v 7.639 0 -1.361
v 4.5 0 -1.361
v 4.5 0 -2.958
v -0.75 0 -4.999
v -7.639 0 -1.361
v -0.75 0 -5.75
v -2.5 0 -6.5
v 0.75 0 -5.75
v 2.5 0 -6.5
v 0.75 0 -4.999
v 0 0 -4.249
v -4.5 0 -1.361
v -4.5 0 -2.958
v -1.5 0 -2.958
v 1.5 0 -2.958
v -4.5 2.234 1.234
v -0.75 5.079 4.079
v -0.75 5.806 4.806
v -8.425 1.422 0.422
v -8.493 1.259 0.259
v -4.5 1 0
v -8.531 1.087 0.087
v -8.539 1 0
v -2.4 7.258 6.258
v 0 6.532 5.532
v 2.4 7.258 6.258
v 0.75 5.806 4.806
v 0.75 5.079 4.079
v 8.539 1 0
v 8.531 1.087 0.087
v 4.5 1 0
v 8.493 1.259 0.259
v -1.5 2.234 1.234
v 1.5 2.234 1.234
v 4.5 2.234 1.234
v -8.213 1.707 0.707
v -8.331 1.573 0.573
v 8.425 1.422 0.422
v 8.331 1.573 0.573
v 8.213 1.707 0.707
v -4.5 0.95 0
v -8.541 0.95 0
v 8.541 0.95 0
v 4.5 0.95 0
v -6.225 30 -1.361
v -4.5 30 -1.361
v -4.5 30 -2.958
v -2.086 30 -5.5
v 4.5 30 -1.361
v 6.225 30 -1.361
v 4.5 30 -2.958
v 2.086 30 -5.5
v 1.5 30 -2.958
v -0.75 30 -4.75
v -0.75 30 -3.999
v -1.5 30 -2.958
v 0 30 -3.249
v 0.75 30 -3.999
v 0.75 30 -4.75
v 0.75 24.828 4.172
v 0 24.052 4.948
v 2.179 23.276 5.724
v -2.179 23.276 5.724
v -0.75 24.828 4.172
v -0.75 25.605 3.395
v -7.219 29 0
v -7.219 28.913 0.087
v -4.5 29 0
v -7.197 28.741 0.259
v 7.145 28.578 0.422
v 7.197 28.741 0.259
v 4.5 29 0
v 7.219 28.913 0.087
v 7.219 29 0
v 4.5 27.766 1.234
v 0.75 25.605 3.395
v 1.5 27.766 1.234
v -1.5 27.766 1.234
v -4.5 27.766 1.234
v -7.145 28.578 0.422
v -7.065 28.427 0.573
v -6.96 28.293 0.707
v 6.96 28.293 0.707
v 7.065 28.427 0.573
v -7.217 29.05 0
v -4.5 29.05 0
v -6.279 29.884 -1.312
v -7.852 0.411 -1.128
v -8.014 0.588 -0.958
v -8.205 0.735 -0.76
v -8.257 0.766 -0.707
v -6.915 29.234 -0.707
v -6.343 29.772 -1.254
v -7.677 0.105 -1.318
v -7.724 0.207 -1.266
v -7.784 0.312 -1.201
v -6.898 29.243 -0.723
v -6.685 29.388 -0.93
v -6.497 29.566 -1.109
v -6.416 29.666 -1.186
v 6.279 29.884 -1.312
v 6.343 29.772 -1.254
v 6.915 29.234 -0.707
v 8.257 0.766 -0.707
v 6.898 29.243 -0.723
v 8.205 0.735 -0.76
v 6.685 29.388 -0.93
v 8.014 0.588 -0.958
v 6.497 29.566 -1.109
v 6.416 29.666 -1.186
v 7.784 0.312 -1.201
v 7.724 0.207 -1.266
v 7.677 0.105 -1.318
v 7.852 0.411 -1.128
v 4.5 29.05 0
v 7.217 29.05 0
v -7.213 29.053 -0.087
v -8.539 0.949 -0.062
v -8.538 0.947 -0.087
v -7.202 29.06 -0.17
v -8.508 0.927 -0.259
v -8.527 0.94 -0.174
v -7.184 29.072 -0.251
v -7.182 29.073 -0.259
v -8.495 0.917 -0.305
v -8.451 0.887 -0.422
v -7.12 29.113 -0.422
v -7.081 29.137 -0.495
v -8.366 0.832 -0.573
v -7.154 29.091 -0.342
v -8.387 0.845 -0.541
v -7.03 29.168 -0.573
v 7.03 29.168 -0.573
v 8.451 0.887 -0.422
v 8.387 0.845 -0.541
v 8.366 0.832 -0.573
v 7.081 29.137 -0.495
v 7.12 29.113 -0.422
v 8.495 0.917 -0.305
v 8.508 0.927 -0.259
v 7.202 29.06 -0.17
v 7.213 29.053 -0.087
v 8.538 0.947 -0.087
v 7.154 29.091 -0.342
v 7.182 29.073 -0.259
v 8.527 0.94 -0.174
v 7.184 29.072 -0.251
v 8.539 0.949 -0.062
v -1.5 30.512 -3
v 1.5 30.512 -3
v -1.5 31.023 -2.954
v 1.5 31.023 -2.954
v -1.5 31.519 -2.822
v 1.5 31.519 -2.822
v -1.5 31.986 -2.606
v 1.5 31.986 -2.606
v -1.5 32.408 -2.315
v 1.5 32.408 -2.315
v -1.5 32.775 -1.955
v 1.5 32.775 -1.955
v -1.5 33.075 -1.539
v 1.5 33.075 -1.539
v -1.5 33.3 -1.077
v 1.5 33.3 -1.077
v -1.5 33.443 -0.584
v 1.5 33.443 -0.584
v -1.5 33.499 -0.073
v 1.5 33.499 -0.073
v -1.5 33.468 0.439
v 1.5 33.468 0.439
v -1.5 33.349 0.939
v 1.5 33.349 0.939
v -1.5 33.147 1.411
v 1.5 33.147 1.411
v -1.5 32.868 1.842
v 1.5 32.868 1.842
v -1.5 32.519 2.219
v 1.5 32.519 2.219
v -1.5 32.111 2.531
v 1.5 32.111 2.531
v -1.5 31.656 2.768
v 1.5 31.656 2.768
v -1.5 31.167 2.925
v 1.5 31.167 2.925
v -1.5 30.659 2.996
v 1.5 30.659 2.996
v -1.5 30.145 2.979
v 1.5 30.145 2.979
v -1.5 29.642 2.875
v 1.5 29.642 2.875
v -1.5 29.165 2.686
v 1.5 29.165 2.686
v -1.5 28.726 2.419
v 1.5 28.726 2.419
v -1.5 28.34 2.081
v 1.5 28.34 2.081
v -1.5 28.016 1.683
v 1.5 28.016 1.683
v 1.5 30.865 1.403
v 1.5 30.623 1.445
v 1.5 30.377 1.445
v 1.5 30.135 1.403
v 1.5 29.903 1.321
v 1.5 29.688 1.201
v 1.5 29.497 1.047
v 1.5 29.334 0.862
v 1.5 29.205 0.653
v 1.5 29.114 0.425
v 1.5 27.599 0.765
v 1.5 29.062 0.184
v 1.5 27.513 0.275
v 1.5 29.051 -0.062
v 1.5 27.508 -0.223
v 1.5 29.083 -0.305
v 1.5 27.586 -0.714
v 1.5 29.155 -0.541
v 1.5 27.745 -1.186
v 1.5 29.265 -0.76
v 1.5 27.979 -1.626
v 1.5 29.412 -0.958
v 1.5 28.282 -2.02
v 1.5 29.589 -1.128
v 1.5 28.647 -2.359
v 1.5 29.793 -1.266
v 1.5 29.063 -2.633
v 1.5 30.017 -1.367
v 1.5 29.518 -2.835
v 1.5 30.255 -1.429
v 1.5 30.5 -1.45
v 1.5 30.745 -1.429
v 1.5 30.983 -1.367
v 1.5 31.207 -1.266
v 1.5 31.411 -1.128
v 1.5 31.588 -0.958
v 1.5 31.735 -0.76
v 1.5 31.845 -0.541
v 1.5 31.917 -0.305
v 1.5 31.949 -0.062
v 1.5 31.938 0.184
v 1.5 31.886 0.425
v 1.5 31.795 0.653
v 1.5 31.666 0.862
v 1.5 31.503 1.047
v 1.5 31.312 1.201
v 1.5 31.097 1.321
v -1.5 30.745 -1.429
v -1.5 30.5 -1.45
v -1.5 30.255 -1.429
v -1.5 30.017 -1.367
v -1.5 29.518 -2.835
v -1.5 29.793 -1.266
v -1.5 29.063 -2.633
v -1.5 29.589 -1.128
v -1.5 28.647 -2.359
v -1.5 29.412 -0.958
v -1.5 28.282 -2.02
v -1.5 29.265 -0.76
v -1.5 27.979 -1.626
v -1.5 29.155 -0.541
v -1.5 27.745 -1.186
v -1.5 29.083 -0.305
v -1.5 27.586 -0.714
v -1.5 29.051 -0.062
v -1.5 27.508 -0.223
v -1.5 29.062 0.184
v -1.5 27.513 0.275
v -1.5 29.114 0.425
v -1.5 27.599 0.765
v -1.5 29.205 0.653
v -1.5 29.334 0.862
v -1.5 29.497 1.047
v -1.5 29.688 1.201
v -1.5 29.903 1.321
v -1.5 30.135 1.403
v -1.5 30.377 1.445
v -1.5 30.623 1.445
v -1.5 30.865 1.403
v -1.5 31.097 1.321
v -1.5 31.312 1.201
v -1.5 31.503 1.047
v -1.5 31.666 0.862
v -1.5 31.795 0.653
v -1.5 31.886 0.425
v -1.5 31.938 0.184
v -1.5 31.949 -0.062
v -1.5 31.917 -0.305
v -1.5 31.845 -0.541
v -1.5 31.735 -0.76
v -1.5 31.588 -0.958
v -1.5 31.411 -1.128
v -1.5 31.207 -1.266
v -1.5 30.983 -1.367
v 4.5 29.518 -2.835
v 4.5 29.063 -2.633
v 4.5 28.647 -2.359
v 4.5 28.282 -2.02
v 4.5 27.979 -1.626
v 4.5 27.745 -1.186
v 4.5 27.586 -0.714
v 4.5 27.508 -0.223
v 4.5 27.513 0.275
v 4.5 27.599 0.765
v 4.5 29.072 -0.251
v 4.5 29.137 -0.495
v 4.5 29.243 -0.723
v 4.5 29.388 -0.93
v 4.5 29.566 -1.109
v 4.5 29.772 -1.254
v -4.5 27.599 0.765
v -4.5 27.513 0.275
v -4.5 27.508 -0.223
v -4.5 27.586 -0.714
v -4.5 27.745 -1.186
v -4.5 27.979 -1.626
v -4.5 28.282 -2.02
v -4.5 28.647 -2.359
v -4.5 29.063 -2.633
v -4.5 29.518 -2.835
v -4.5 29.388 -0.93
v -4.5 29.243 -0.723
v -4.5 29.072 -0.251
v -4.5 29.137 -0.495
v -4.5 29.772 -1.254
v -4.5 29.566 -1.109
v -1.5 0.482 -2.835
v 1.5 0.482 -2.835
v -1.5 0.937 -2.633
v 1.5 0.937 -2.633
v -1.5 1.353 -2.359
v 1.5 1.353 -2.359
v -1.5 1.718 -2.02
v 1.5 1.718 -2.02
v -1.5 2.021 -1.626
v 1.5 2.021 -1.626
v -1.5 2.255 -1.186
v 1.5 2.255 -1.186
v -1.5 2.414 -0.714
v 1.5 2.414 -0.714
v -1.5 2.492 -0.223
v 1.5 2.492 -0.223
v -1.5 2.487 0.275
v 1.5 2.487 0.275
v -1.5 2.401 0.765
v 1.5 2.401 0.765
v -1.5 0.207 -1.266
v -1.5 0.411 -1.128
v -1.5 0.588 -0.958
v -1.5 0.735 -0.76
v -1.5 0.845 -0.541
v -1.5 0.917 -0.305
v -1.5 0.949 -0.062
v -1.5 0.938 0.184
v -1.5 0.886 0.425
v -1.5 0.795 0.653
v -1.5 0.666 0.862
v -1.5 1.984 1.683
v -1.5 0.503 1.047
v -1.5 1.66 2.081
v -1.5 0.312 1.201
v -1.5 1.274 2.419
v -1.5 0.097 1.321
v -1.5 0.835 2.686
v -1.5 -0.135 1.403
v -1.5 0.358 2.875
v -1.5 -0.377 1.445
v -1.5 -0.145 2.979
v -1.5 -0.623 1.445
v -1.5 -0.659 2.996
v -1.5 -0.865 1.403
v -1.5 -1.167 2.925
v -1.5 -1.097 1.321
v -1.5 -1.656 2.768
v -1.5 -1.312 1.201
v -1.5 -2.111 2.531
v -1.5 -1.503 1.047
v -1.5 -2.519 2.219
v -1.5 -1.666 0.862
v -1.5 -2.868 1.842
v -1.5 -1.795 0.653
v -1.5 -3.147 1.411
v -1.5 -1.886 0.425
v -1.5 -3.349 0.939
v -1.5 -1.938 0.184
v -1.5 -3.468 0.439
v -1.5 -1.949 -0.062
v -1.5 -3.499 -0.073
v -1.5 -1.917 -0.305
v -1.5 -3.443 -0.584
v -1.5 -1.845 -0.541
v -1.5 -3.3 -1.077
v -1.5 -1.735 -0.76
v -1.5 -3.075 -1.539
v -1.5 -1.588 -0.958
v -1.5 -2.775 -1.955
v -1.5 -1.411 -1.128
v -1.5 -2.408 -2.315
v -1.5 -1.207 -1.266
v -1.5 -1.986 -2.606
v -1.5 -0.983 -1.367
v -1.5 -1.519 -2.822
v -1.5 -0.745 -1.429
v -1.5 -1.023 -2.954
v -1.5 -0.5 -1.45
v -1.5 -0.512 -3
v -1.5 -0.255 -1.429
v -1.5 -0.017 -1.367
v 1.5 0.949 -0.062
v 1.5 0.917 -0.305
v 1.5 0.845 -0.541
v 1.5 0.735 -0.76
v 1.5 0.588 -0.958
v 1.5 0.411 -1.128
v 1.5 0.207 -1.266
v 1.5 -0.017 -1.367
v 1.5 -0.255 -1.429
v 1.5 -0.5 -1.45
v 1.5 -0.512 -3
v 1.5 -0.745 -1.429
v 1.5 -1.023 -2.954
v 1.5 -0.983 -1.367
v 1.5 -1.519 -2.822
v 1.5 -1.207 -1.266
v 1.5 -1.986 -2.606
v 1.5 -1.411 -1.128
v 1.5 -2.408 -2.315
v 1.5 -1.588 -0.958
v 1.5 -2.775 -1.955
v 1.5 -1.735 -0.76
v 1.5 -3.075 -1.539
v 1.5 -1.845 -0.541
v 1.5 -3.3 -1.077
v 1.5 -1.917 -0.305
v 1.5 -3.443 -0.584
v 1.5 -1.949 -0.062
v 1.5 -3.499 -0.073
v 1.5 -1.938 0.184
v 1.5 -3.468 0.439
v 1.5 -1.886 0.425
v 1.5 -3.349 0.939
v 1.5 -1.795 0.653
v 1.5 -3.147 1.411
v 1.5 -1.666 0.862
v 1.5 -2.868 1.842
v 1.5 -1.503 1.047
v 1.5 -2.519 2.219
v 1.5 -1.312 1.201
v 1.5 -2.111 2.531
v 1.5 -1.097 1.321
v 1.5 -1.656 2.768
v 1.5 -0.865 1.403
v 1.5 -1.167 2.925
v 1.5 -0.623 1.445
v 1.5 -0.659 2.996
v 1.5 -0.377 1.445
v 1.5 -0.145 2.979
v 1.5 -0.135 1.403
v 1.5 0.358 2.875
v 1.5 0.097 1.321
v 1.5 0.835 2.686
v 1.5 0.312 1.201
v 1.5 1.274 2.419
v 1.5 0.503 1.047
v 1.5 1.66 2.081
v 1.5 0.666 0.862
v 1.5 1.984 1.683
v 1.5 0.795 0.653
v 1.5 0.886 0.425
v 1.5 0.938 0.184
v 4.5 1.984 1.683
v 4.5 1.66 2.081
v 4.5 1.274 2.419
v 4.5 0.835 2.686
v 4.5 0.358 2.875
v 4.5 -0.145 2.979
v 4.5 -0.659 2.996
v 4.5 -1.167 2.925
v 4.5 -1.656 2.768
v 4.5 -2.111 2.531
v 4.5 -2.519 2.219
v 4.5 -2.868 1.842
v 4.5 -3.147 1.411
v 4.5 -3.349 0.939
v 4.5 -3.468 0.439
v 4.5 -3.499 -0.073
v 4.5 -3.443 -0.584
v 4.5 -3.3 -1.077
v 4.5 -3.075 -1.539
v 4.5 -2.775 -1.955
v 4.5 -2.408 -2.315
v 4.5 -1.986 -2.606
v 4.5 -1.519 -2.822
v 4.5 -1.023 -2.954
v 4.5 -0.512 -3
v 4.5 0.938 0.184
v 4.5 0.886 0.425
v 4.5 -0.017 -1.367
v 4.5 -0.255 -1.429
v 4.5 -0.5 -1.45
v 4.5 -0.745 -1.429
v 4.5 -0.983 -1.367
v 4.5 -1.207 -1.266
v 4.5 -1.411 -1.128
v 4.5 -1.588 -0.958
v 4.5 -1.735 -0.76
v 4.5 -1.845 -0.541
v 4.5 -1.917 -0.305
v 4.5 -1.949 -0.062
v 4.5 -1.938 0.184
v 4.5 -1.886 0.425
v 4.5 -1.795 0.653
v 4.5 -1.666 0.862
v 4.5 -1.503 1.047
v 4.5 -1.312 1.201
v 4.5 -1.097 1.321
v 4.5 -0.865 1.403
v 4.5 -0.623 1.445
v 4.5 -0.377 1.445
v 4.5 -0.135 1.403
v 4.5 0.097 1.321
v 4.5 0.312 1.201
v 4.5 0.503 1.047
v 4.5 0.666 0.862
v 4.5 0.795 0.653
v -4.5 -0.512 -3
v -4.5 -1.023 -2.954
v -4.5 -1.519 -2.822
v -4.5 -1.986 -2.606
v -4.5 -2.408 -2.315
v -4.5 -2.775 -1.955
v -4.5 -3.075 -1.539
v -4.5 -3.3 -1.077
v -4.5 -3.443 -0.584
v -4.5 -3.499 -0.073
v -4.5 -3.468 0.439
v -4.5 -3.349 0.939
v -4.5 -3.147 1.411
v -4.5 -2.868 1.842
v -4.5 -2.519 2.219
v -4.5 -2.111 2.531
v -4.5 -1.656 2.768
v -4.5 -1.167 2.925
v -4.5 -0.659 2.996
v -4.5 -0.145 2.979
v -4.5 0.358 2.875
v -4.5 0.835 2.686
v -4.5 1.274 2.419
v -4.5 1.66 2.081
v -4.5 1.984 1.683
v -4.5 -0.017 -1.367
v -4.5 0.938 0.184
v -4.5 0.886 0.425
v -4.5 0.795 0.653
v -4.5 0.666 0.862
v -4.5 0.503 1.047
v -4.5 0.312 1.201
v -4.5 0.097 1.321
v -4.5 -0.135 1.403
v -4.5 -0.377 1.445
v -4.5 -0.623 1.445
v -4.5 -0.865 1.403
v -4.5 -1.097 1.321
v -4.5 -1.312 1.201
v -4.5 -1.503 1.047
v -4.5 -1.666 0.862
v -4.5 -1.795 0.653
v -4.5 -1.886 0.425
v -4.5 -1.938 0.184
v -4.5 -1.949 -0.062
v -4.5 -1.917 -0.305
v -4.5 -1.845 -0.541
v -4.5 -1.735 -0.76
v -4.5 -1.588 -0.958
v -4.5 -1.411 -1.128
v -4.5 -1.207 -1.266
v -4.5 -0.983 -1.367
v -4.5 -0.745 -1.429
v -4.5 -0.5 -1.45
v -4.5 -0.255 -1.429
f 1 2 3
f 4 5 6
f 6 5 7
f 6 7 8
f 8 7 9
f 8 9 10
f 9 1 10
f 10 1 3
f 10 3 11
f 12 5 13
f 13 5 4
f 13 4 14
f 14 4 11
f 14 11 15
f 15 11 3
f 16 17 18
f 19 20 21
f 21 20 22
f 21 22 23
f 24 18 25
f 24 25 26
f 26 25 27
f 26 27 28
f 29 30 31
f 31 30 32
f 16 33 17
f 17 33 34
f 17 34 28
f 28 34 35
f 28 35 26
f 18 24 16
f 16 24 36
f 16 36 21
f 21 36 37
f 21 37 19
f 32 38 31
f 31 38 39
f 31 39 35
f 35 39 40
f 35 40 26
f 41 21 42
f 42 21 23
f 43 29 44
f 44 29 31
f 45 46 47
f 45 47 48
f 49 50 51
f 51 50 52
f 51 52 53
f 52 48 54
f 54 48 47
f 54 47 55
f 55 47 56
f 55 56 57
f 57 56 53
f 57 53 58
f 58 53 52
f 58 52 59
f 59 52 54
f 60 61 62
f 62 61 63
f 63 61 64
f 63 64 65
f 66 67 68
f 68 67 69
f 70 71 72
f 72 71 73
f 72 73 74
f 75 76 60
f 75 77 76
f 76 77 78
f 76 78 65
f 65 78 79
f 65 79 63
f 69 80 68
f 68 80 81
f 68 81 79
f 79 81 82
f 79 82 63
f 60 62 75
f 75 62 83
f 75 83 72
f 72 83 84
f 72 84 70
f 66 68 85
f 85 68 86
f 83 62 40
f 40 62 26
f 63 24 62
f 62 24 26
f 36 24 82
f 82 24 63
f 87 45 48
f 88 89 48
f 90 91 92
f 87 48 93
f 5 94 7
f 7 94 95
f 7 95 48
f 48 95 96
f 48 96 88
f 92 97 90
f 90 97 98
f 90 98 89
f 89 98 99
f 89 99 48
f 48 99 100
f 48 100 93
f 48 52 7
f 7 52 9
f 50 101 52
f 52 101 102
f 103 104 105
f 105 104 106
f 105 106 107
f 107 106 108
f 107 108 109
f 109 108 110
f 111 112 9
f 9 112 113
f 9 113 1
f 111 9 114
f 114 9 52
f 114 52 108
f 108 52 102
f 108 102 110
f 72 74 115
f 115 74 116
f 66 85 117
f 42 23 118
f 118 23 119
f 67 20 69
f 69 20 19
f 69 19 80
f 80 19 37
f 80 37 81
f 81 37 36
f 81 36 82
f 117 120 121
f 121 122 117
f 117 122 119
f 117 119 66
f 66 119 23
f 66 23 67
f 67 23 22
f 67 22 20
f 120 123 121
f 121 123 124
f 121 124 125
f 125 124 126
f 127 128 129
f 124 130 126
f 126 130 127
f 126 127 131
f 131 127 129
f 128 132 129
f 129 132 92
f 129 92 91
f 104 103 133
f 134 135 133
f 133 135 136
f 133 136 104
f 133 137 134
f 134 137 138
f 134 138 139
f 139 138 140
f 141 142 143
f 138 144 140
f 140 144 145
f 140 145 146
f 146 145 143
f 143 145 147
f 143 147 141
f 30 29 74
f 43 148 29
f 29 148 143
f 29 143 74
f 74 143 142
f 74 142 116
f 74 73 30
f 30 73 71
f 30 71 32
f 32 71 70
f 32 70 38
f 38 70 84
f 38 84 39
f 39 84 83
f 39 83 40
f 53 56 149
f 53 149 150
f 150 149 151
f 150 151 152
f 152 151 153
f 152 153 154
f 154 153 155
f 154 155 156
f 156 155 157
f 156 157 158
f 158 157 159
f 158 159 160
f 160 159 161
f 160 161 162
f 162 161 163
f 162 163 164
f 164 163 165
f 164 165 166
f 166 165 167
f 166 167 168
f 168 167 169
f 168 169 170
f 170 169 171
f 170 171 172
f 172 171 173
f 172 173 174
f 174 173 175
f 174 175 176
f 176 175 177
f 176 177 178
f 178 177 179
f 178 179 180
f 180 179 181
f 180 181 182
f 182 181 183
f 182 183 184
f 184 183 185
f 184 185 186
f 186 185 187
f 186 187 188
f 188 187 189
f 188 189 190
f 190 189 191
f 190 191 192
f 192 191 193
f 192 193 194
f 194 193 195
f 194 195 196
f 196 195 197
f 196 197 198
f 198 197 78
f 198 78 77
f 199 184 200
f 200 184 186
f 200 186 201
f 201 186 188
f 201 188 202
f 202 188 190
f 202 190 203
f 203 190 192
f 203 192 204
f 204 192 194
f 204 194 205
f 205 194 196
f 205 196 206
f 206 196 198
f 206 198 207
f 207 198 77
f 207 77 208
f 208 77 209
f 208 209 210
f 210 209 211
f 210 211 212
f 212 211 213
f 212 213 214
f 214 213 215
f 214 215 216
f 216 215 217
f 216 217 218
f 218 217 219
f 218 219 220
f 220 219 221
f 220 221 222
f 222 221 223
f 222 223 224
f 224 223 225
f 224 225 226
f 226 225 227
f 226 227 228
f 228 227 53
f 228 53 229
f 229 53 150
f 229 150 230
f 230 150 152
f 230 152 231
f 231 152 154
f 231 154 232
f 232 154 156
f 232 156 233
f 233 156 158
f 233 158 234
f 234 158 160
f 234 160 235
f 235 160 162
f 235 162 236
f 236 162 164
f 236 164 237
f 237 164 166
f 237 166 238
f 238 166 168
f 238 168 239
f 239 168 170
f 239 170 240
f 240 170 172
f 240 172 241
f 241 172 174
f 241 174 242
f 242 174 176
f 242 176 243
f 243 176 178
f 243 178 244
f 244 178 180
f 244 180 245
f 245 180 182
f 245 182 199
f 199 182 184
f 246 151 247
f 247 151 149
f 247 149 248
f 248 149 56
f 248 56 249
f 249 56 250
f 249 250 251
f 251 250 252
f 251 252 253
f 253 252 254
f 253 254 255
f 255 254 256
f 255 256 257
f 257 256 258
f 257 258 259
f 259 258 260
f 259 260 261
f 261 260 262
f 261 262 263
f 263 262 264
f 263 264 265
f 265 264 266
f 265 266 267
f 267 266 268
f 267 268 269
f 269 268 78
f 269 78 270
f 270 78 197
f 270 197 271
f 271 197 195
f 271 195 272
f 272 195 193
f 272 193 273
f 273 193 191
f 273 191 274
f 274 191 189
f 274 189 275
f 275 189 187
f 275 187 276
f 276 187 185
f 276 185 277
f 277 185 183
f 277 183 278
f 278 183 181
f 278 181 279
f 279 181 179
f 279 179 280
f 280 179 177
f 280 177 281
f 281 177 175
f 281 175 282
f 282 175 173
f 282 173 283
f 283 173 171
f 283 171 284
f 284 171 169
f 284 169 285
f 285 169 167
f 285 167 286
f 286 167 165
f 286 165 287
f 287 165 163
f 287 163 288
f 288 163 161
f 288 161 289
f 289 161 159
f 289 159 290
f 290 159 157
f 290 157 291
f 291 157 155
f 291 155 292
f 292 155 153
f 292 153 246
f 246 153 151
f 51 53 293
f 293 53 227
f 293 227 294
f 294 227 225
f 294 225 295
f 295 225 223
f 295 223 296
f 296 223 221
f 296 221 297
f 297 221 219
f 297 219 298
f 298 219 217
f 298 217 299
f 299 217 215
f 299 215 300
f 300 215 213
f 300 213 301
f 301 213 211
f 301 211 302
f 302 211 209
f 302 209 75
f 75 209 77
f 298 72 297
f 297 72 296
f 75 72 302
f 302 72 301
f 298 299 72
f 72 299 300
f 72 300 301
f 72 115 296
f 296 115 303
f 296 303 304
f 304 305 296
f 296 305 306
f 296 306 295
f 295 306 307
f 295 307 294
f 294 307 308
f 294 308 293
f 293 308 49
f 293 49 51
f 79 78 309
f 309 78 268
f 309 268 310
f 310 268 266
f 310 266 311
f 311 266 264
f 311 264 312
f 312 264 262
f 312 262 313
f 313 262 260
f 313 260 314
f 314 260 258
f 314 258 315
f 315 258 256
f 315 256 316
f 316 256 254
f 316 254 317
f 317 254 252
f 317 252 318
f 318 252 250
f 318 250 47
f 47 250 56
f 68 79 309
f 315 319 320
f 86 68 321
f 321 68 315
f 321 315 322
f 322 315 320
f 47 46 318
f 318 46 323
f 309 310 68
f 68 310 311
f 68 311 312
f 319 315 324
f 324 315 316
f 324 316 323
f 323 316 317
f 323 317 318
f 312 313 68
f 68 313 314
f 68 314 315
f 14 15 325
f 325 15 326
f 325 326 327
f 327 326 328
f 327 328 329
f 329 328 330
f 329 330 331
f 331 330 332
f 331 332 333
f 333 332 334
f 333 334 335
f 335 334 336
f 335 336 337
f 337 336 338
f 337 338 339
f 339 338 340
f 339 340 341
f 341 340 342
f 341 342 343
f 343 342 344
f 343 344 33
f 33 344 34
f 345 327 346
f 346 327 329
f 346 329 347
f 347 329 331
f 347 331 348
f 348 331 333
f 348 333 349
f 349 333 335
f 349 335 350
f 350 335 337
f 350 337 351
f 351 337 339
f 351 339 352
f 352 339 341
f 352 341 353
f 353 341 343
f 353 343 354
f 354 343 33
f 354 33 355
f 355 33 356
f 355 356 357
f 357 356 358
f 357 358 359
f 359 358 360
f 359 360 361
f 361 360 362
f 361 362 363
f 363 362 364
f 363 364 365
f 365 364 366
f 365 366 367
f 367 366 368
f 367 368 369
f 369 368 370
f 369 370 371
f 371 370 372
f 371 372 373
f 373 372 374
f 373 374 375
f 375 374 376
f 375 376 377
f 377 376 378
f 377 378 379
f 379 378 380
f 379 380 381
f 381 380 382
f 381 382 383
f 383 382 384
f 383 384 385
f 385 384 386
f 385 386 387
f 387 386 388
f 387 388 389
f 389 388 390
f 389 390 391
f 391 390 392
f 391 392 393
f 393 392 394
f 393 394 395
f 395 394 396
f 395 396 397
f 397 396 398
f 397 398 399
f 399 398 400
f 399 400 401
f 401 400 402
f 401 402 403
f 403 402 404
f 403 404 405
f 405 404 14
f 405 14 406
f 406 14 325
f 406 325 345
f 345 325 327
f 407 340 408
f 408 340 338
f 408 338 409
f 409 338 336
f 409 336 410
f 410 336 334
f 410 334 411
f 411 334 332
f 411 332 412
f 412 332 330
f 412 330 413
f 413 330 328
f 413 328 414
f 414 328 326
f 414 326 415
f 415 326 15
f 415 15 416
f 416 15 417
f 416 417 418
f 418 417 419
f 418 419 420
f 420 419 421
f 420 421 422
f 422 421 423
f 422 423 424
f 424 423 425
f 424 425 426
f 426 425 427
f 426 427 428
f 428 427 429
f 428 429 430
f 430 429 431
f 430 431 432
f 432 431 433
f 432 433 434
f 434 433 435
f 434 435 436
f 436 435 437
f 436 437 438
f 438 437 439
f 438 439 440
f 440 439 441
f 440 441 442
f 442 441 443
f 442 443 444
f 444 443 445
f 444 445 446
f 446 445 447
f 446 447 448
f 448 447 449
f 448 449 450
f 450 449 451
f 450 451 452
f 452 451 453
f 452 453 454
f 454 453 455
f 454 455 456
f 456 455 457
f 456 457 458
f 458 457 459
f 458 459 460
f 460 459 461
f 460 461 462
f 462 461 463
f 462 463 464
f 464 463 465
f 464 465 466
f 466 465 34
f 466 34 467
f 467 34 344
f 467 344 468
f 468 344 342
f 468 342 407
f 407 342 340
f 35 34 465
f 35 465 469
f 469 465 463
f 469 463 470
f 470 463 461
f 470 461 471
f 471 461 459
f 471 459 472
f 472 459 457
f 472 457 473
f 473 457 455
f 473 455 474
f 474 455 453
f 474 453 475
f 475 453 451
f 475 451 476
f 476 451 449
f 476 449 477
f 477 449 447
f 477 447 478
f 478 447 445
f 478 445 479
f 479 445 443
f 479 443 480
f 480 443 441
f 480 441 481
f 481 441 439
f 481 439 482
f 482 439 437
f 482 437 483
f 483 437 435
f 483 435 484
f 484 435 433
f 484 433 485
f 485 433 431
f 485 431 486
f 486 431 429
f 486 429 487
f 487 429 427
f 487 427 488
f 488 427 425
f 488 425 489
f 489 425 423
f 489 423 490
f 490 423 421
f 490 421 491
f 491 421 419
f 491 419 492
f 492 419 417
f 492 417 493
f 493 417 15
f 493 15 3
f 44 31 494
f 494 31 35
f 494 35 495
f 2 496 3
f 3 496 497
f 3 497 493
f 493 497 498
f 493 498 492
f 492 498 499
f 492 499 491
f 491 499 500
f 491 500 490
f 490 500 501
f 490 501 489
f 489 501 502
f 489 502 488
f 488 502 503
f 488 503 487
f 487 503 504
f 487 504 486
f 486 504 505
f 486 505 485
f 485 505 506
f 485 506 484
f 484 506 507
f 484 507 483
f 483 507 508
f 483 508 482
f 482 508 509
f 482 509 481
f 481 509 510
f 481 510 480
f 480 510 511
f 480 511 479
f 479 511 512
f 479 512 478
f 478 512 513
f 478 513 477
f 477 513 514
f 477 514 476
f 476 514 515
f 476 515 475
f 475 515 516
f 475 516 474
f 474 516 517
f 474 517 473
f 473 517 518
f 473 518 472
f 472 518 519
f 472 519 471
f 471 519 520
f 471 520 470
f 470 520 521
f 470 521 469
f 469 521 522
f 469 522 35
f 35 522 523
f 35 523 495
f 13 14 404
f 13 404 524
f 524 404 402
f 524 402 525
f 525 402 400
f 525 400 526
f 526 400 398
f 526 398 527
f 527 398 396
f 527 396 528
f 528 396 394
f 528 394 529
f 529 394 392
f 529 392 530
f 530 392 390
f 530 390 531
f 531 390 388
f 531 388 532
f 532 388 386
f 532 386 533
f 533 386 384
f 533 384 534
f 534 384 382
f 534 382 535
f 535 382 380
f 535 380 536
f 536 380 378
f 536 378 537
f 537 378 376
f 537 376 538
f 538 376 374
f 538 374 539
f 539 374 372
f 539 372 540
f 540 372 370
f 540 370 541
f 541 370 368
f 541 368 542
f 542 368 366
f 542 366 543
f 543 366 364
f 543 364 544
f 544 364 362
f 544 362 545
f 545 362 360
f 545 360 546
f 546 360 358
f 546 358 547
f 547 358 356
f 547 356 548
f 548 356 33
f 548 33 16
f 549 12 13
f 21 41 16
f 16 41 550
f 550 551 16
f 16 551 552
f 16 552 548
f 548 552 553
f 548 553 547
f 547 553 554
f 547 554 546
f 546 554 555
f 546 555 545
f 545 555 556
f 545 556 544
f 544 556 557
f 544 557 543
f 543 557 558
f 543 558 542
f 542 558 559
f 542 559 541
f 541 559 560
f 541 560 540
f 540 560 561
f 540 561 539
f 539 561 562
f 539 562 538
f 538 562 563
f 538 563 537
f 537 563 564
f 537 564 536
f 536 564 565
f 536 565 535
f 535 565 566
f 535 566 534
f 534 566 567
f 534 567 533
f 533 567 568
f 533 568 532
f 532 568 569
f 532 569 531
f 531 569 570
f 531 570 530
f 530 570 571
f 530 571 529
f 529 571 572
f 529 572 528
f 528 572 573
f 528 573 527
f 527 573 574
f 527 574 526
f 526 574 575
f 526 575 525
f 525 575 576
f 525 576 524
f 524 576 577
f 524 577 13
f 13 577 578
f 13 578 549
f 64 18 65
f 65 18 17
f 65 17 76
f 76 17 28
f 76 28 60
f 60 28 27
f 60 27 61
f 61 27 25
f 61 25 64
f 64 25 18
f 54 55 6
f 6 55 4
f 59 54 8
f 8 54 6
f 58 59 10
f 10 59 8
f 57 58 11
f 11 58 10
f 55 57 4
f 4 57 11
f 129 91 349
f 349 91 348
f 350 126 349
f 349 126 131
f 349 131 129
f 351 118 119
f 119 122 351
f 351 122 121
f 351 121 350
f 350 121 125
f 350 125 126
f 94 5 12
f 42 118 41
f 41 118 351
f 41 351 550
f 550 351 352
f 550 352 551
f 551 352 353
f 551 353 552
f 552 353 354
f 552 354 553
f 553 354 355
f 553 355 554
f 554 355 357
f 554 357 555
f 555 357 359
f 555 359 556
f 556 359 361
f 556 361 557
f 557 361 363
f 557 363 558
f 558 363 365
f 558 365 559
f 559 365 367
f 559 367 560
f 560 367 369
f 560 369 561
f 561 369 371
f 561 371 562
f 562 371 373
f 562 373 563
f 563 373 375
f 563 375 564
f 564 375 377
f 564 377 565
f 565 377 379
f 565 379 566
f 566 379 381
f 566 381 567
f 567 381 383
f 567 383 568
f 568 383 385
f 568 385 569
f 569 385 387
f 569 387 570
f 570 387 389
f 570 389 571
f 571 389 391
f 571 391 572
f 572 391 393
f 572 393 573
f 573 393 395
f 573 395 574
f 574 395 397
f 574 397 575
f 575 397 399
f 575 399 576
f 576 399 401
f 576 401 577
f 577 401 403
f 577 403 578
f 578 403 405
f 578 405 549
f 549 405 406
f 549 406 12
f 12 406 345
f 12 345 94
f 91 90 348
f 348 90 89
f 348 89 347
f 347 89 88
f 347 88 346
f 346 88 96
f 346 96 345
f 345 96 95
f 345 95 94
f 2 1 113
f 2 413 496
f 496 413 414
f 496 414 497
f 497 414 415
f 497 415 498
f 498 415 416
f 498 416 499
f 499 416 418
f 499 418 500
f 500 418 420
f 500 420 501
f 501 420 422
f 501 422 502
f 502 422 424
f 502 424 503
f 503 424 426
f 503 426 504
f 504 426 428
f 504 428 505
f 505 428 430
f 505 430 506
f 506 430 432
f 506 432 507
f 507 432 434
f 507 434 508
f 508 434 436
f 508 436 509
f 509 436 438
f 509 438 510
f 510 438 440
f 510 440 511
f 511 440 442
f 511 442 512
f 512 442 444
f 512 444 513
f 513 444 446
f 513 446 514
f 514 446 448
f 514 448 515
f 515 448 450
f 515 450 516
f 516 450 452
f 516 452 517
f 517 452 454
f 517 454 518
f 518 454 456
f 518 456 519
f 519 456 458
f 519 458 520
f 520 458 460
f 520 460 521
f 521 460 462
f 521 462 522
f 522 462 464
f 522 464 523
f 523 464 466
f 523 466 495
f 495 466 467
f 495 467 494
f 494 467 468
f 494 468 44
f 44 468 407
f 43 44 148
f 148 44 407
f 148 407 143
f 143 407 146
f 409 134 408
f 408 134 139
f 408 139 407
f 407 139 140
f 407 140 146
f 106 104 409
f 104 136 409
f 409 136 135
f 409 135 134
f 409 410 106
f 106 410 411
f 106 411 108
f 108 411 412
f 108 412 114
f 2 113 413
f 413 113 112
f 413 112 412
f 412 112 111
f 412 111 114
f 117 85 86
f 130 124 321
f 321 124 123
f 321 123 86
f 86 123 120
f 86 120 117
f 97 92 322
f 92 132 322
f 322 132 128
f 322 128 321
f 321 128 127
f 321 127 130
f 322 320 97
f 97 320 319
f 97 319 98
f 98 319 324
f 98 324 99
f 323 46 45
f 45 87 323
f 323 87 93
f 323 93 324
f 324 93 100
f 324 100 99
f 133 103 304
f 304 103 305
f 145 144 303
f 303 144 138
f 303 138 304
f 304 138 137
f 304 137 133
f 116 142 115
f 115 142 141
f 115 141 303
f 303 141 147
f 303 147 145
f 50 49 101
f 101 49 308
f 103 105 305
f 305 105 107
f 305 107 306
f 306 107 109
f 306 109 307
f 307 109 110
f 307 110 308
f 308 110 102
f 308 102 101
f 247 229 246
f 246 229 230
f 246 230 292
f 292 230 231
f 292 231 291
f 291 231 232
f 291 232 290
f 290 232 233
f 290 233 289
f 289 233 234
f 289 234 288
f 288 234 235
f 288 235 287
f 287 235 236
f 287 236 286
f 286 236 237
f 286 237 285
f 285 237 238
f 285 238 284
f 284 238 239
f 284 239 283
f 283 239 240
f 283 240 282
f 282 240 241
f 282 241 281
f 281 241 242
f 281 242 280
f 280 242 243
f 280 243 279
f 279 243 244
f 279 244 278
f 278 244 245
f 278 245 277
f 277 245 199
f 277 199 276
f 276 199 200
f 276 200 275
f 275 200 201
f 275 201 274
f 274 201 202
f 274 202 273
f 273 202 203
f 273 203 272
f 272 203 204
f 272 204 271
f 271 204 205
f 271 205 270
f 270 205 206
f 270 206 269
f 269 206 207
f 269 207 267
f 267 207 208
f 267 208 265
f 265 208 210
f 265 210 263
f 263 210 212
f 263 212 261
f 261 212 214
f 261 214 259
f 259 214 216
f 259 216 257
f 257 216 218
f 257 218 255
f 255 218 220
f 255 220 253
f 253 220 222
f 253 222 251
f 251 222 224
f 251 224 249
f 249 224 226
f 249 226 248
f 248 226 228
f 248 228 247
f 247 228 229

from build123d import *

# Parameters (mm, degrees)
LOFT1_DEPTH             = 30
LOFT1_DRAFT             = 1.9091524
CUT_EXTRUDE2_DEPTH      = 32.988279093
CUT_EXTRUDE2_DEPTH_BACK = 32.988279093
FILLET2_R               = 1
SKETCH4_R               = 3
BOSS_EXTRUDE1_DEPTH     = 1.5
CUT_EXTRUDE3_START      = 3
SKETCH5_R               = 3
CUT_EXTRUDE3_DEPTH      = 3
SKETCH6_R               = 3
CUT_EXTRUDE4_DEPTH      = 1.5
BOSS_EXTRUDE2_START     = -3
SKETCH7_R               = 3
BOSS_EXTRUDE2_DEPTH     = 3
CUT_EXTRUDE5_DEPTH      = 22.529931357
CUT_EXTRUDE5_DEPTH_BACK = 22.529931357
CUT_EXTRUDE6_DEPTH      = 22.746838212
CUT_EXTRUDE6_DEPTH_BACK = 22.746838212
CUT_EXTRUDE7_DEPTH      = 36.188368954
CUT_EXTRUDE7_DEPTH_BACK = 36.188368954
SKETCH10_R              = 1.45


# Read off the part's stored shape, not the designer's step: Loft1
with BuildPart() as part:
    # Loft1 outline → Loft1 (with draft: the straight prism first)
    with BuildSketch(Plane(origin=(0, 30, 0), x_dir=(1, 0, 0), z_dir=(0, 1, 0))):
        Polygon((2.085786438, 5.5), (-2.085786438, 5.5), (-7.585786438, 0), (-2.085786438, -5.5), (2.085786438, -5.5), (7.585786438, 0), align=None)
    extrude(amount=-LOFT1_DEPTH)
    # Loft1: the draft: its side faces are tilted about the plane it starts from
    loft1_sides = [part.faces().sort_by_distance(p)[0] for p in [
        (0, 15, -5.5),
        (-4.835786438, 15, -2.75),
        (-4.835786438, 15, 2.75),
        (0, 15, 5.5),
        (4.835786438, 15, 2.75),
        (4.835786438, 15, -2.75),
    ]]
    draft(loft1_sides, Plane(origin=(0, 30, 0), x_dir=(1, 0, 0), z_dir=(0, 1, 0)), LOFT1_DRAFT)

    # Sketch3 → Cut-Extrude2 (cut, two sides: drawn at the far end of the back side and taken through both)
    with BuildSketch(Plane(origin=(0, 0, 0), x_dir=(0, 0, -1), z_dir=(1, 0, 0)).offset(-CUT_EXTRUDE2_DEPTH_BACK)):
        Polygon((0, 30), (0, 29), (-5.724137931, 23.275862069), (-5.5, 30), align=None)
        Polygon((0, 0), (0, 1), (-6.258064516, 7.258064516), (-6.5, 0), align=None)
    extrude(amount=CUT_EXTRUDE2_DEPTH + CUT_EXTRUDE2_DEPTH_BACK, mode=Mode.SUBTRACT)

    # Fillet2
    # the kernel refuses this fillet: 1 mm, written as the material it takes off along each edge
    with BuildSketch(Plane(origin=(-7.515337072, 31.494456763, 0), x_dir=(0.70593033942015, -0.0332778747610444, -0.7074990734534851), z_dir=(-0.04708816012216718, -0.9988907373563483, 0))) as fillet2_piece_1:
        with BuildLine():
            CenterArc((FILLET2_R * 0.998890737356, FILLET2_R), FILLET2_R, 180.063591331, 89.936408669)
            Line((-FILLET2_R * 0.00110864672901, FILLET2_R * 0.998890122125), (0, 0))
            Line((0, 0), (FILLET2_R * 0.998890737356, 0))
        make_face()
    extrude(amount=33.025547532, mode=Mode.SUBTRACT)
    with BuildSketch(Plane(origin=(7.515337072, 31.494456763, 0), x_dir=(-0.7059303394201507, -0.03327787476104443, -0.7074990734534845), z_dir=(0.04708816012216718, -0.9988907373563483, 0))) as fillet2_piece_2:
        with BuildLine():
            CenterArc((FILLET2_R * 0.998890737356, -FILLET2_R), FILLET2_R, 90, 89.936408669)
            Line((-FILLET2_R * 0.00110864672901, -FILLET2_R * 0.998890122125), (0, 0))
            Line((0, 0), (FILLET2_R * 0.998890737356, 0))
        make_face()
    extrude(amount=33.025547532, mode=Mode.SUBTRACT)

    # Sketch4 → Boss-Extrude1 (add, symmetric)
    with BuildSketch(Plane(origin=(0, 0, 0), x_dir=(0, 0, -1), z_dir=(1, 0, 0))):
        with Locations((0, 30.5)):
            Circle(SKETCH4_R)
    extrude(amount=BOSS_EXTRUDE1_DEPTH, both=True)

    # Sketch5 → Cut-Extrude3 (cut)
    with BuildSketch(Plane(origin=(1.5, 0, 0), x_dir=(0, 0, -1), z_dir=(1, 0, 0)).offset(CUT_EXTRUDE3_START)):
        with Locations((0, 30.5)):
            Circle(SKETCH5_R)
    cut_extrude3 = extrude(amount=-CUT_EXTRUDE3_DEPTH, mode=Mode.SUBTRACT)

    # Mirror1: Cut-Extrude3 across plane
    add(cut_extrude3.mirror(Plane(origin=(0, 0, 0), x_dir=(0, 0, 1), z_dir=(1, 0, 0))), mode=Mode.SUBTRACT)

    # Sketch6 → Cut-Extrude4 (cut, symmetric)
    with BuildSketch(Plane(origin=(0, 0, 0), x_dir=(0, 0, -1), z_dir=(1, 0, 0))):
        with Locations((0, -0.5)):
            Circle(SKETCH6_R)
    extrude(amount=CUT_EXTRUDE4_DEPTH, both=True, mode=Mode.SUBTRACT)

    # Sketch7 → Boss-Extrude2 (add)
    with BuildSketch(Plane.ZY.offset(-1.5).offset(BOSS_EXTRUDE2_START)):
        with Locations((0, -0.5)):
            Circle(SKETCH7_R)
    boss_extrude2 = extrude(amount=BOSS_EXTRUDE2_DEPTH)

    # Mirror2: Boss-Extrude2 across plane
    add(boss_extrude2.mirror(Plane(origin=(0, 0, 0), x_dir=(0, 0, 1), z_dir=(1, 0, 0))))

    # Sketch8 → Cut-Extrude5 (cut, two sides: drawn at the far end of the back side and taken through both)
    with BuildSketch(Plane(origin=(0, 15.050537099, -0.50168457), x_dir=(1, 0, 0), z_dir=(0, 0.9994449069791544, -0.0333148302326385)).offset(-CUT_EXTRUDE5_DEPTH_BACK)):
        Polygon((-0.75, -4.246391895), (0.75, -4.246391895), (0.75, -4.996391895), (0, -5.746391895), (-0.75, -4.996391895), align=None)
    extrude(amount=CUT_EXTRUDE5_DEPTH + CUT_EXTRUDE5_DEPTH_BACK, mode=Mode.SUBTRACT)

    # Sketch9 → Cut-Extrude6 (cut, two sides: drawn at the far end of the back side and taken through both)
    with BuildSketch(Plane(origin=(0, 14.783573807, 0.492785794), x_dir=(1, 0, 0), z_dir=(0, 0.9994449069791544, 0.0333148302326385)).offset(-CUT_EXTRUDE6_DEPTH_BACK)):
        Polygon((-0.75, 5.746391895), (0.75, 5.746391895), (0.75, 4.996391895), (0, 4.246391895), (-0.75, 4.996391895), align=None)
    extrude(amount=CUT_EXTRUDE6_DEPTH + CUT_EXTRUDE6_DEPTH_BACK, mode=Mode.SUBTRACT)

    # Sketch10 → Cut-Extrude7 (cut, two sides: drawn at the far end of the back side and taken through both)
    with BuildSketch(Plane(origin=(0, 0, 0), x_dir=(0, 0, -1), z_dir=(1, 0, 0)).offset(-CUT_EXTRUDE7_DEPTH_BACK)):
        with Locations((0, 30.5)):
            Circle(SKETCH10_R)
        with Locations((0, -0.5)):
            Circle(SKETCH10_R)
    extrude(amount=CUT_EXTRUDE7_DEPTH + CUT_EXTRUDE7_DEPTH_BACK, mode=Mode.SUBTRACT)


solid = part.part
